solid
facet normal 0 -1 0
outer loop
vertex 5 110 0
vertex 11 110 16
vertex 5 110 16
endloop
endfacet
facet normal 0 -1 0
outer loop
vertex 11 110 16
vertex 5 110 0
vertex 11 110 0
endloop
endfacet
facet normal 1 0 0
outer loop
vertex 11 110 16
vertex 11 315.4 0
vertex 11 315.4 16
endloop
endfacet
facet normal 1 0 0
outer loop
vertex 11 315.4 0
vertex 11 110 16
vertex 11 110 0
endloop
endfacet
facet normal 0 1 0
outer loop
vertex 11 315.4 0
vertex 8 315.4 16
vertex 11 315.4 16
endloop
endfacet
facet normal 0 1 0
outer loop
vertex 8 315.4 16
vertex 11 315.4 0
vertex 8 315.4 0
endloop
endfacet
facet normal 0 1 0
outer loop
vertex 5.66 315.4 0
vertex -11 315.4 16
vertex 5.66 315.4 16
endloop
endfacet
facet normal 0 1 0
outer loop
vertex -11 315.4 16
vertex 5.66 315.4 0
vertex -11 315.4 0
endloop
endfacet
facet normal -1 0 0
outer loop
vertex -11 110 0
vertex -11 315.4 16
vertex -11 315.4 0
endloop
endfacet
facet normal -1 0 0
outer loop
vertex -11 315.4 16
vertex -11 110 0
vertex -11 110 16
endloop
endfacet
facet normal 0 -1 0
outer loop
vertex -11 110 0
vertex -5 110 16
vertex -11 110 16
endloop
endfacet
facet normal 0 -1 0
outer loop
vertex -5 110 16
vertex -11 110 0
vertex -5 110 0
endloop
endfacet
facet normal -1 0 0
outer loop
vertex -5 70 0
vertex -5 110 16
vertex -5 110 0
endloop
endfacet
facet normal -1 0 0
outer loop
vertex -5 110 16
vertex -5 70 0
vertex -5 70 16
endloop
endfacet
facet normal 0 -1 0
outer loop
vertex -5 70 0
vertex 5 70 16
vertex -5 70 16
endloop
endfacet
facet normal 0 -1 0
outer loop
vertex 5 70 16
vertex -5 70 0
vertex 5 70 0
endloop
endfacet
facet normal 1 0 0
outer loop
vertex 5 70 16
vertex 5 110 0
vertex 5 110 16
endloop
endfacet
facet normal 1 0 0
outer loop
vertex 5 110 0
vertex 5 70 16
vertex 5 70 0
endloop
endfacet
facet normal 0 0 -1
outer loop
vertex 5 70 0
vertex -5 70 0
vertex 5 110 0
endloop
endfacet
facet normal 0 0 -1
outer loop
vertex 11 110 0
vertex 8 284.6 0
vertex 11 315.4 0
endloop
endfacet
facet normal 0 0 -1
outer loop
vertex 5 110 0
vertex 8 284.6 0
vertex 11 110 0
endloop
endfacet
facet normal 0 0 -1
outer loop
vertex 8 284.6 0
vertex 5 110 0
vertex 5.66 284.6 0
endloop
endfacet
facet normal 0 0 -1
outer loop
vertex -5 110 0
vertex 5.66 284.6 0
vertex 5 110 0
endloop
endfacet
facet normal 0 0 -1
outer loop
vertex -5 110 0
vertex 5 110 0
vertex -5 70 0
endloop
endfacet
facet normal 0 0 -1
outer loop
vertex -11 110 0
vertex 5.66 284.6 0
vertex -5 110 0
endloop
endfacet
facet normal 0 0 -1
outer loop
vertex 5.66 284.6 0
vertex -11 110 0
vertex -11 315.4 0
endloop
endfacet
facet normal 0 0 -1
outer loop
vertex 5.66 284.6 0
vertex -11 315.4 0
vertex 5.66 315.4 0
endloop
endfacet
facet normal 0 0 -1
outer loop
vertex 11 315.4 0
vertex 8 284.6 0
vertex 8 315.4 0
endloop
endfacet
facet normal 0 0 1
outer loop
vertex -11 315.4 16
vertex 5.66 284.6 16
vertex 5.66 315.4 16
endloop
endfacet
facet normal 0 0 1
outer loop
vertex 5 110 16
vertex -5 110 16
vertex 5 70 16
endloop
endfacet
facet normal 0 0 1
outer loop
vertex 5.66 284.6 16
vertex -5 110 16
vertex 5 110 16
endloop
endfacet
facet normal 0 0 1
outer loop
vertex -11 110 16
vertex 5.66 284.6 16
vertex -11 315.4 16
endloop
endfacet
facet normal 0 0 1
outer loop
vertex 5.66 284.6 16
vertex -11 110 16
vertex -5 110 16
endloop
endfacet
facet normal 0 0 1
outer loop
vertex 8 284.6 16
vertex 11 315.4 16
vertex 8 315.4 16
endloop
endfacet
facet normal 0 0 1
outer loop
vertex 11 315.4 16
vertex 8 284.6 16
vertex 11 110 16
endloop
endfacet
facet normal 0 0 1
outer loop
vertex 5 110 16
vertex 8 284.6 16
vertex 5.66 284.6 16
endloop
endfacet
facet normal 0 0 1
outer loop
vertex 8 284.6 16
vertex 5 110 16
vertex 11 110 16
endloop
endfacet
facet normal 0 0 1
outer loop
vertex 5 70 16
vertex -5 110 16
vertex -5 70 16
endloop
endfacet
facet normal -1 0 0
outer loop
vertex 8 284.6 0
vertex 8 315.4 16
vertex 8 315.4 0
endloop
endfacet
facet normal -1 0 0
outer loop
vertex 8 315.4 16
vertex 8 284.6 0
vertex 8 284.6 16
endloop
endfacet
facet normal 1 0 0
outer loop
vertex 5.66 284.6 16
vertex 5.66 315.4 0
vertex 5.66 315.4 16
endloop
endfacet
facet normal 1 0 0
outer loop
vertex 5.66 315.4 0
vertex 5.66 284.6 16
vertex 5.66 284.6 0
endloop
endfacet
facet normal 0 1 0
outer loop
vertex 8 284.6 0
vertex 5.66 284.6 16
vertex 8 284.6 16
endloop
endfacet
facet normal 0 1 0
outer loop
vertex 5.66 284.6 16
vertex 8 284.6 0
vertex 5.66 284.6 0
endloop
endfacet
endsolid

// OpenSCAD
// file: lib.scad
// Shared pieces for the Winterlight PETG parts (Bambu Lab A1, 256 × 256 × 256 mm).
// Millimetres. Measure your own mounting strip and set strip_w / strip_t on the
// command line (-D strip_w=20) or in OpenSCAD's Customizer before printing.
$fn = 72;
strip_w = 30;   // pixel mounting strip width
strip_t = 1.54; // pixel mounting strip thickness (measured)
clr = 0.4;      // clearance per side, a snug slide fit in PETG
wall = 3;       // channel walls
tie_d = 4.5;    // holes for the 2.5 mm cable ties or an M4 bolt

// Closed slots the strip slides through (the ground strip's posts).
slot_t = strip_t + 2*clr;
slot_w = strip_w + 2*clr;
// Open pockets the strip ends sit in (mini trees, tree hub and ring): a close
// fit across, and a little shallower than the strip, so the strip stands
// proud of the face and the cable tie clamps it down.
proud = 0.3;
pocket_t = strip_t - proud;
pocket_w = strip_w + 2*0.2;
// Outside size of a strip channel: radial depth and tangential width.
ch_depth = pocket_t + wall;
ch_width = pocket_w + 2*wall;

// A channel that holds a strip's end: the strip runs up +Z with its face
// (and its pixels) towards +X. Open on the +X side so the strip drops in,
// with a groove round the outside where a cable tie pulls it home.
module channel(h, floor = 3) {
  z0 = h*0.55;
  difference() {
    translate([-ch_depth, -ch_width/2, 0]) cube([ch_depth, ch_width, h]);
    translate([-pocket_t, -pocket_w/2, floor]) cube([pocket_t + 1, pocket_w, h]);
    // Tie groove, 1 mm deep, round the back and both sides.
    difference() {
      translate([-ch_depth - 1, -ch_width/2 - 1, z0]) cube([ch_depth + 2, ch_width + 2, 5]);
      translate([-ch_depth + 1, -ch_width/2 + 1, z0 - 1]) cube([ch_depth + 2, ch_width - 2, 7]);
    }
  }
}

// n channels on a circle of radius r (the strip's face), leaning by tilt
// degrees: positive leans the top inwards, negative outwards.
module channel_ring(n, r, tilt, h, start = 0) {
  intersection() {
    for (i = [0 : n - 1]) rotate([0, 0, start + 360*i/n])
      translate([r, 0, 0]) rotate([0, -tilt, 0]) channel(h);
    translate([-1000, -1000, 0]) cube([2000, 2000, 1000]);
  }
}

// A flat ring with spokes to a centre boss: the plate that ties the channels together.
module spoked_ring(r_out, r_in, t, n, boss_d, arm_w = 8) {
  difference() { cylinder(r = r_out, h = t); translate([0, 0, -1]) cylinder(r = r_in, h = t + 2); }
  for (i = [0 : n - 1]) rotate([0, 0, 360*i/n + 180/n]) translate([0, -arm_w/2, 0]) cube([r_in + 1, arm_w, t]);
  cylinder(d = boss_d, h = t);
}

// Bricks for ballast: the paving in front of the house is stone, so nothing
// can be staked into it. The feet are trays that hold standard concrete paving
// bricks (betonklinkers, 22 × 11 × 8 cm, about 4 kg each). Set your own size.
brick_l = 220;
brick_w = 110;
brick_h = 80;
brick_clr = 3;      // bricks vary a few millimetres
tray_wall = 1.6;
tray_h = 20;
tray_lip = 10;      // the floor is only a ledge round the edge, to save PETG
tray_floor = 1.6;

// A tray for n bricks side by side along Y, its corner at the origin.
// gap: extra room between the bricks (for a rib); returns nothing, see tray_size.
function tray_inner(n = 1, gap = 0) = [brick_l + 2*brick_clr, n*(brick_w + 2*brick_clr) + gap];
module tray(n = 1, gap = 0) {
  in = tray_inner(n, gap);
  out = [in[0] + 2*tray_wall, in[1] + 2*tray_wall];
  difference() {
    cube([out[0], out[1], tray_h]);
    translate([tray_wall, tray_wall, tray_floor]) cube([in[0], in[1], tray_h]);
    translate([tray_wall + tray_lip, tray_wall + tray_lip, -1]) cube([in[0] - 2*tray_lip, in[1] - 2*tray_lip, tray_floor + 2]);
  }
}
// main file
// Ground strip, post: its tenon drops into the socket of a brick foot and the
// strip lies in the slot at the top, its centre at the model's 30 cm. The
// strip's face points towards +X (the street, or the path on the left run).
// Printed lying on its side. Print Y = up in use, 0 = the ground.
include <lib.scad>
strip_y = 300;
socket_h = 110;    // top of the foot's socket
tenon = 40;
w = 22;
t = 16;
tenon_w = 10;
front = 3;
top = strip_y + slot_w/2;

difference() {
  linear_extrude(t) union() {
    translate([-w/2, socket_h]) square([w, top - socket_h]);
    translate([-tenon_w/2, socket_h - tenon]) square([tenon_w, tenon + 1]);
  }
  translate([w/2 - front - slot_t, top - slot_w, -1]) cube([slot_t, slot_w + 1, t + 2]);
}
